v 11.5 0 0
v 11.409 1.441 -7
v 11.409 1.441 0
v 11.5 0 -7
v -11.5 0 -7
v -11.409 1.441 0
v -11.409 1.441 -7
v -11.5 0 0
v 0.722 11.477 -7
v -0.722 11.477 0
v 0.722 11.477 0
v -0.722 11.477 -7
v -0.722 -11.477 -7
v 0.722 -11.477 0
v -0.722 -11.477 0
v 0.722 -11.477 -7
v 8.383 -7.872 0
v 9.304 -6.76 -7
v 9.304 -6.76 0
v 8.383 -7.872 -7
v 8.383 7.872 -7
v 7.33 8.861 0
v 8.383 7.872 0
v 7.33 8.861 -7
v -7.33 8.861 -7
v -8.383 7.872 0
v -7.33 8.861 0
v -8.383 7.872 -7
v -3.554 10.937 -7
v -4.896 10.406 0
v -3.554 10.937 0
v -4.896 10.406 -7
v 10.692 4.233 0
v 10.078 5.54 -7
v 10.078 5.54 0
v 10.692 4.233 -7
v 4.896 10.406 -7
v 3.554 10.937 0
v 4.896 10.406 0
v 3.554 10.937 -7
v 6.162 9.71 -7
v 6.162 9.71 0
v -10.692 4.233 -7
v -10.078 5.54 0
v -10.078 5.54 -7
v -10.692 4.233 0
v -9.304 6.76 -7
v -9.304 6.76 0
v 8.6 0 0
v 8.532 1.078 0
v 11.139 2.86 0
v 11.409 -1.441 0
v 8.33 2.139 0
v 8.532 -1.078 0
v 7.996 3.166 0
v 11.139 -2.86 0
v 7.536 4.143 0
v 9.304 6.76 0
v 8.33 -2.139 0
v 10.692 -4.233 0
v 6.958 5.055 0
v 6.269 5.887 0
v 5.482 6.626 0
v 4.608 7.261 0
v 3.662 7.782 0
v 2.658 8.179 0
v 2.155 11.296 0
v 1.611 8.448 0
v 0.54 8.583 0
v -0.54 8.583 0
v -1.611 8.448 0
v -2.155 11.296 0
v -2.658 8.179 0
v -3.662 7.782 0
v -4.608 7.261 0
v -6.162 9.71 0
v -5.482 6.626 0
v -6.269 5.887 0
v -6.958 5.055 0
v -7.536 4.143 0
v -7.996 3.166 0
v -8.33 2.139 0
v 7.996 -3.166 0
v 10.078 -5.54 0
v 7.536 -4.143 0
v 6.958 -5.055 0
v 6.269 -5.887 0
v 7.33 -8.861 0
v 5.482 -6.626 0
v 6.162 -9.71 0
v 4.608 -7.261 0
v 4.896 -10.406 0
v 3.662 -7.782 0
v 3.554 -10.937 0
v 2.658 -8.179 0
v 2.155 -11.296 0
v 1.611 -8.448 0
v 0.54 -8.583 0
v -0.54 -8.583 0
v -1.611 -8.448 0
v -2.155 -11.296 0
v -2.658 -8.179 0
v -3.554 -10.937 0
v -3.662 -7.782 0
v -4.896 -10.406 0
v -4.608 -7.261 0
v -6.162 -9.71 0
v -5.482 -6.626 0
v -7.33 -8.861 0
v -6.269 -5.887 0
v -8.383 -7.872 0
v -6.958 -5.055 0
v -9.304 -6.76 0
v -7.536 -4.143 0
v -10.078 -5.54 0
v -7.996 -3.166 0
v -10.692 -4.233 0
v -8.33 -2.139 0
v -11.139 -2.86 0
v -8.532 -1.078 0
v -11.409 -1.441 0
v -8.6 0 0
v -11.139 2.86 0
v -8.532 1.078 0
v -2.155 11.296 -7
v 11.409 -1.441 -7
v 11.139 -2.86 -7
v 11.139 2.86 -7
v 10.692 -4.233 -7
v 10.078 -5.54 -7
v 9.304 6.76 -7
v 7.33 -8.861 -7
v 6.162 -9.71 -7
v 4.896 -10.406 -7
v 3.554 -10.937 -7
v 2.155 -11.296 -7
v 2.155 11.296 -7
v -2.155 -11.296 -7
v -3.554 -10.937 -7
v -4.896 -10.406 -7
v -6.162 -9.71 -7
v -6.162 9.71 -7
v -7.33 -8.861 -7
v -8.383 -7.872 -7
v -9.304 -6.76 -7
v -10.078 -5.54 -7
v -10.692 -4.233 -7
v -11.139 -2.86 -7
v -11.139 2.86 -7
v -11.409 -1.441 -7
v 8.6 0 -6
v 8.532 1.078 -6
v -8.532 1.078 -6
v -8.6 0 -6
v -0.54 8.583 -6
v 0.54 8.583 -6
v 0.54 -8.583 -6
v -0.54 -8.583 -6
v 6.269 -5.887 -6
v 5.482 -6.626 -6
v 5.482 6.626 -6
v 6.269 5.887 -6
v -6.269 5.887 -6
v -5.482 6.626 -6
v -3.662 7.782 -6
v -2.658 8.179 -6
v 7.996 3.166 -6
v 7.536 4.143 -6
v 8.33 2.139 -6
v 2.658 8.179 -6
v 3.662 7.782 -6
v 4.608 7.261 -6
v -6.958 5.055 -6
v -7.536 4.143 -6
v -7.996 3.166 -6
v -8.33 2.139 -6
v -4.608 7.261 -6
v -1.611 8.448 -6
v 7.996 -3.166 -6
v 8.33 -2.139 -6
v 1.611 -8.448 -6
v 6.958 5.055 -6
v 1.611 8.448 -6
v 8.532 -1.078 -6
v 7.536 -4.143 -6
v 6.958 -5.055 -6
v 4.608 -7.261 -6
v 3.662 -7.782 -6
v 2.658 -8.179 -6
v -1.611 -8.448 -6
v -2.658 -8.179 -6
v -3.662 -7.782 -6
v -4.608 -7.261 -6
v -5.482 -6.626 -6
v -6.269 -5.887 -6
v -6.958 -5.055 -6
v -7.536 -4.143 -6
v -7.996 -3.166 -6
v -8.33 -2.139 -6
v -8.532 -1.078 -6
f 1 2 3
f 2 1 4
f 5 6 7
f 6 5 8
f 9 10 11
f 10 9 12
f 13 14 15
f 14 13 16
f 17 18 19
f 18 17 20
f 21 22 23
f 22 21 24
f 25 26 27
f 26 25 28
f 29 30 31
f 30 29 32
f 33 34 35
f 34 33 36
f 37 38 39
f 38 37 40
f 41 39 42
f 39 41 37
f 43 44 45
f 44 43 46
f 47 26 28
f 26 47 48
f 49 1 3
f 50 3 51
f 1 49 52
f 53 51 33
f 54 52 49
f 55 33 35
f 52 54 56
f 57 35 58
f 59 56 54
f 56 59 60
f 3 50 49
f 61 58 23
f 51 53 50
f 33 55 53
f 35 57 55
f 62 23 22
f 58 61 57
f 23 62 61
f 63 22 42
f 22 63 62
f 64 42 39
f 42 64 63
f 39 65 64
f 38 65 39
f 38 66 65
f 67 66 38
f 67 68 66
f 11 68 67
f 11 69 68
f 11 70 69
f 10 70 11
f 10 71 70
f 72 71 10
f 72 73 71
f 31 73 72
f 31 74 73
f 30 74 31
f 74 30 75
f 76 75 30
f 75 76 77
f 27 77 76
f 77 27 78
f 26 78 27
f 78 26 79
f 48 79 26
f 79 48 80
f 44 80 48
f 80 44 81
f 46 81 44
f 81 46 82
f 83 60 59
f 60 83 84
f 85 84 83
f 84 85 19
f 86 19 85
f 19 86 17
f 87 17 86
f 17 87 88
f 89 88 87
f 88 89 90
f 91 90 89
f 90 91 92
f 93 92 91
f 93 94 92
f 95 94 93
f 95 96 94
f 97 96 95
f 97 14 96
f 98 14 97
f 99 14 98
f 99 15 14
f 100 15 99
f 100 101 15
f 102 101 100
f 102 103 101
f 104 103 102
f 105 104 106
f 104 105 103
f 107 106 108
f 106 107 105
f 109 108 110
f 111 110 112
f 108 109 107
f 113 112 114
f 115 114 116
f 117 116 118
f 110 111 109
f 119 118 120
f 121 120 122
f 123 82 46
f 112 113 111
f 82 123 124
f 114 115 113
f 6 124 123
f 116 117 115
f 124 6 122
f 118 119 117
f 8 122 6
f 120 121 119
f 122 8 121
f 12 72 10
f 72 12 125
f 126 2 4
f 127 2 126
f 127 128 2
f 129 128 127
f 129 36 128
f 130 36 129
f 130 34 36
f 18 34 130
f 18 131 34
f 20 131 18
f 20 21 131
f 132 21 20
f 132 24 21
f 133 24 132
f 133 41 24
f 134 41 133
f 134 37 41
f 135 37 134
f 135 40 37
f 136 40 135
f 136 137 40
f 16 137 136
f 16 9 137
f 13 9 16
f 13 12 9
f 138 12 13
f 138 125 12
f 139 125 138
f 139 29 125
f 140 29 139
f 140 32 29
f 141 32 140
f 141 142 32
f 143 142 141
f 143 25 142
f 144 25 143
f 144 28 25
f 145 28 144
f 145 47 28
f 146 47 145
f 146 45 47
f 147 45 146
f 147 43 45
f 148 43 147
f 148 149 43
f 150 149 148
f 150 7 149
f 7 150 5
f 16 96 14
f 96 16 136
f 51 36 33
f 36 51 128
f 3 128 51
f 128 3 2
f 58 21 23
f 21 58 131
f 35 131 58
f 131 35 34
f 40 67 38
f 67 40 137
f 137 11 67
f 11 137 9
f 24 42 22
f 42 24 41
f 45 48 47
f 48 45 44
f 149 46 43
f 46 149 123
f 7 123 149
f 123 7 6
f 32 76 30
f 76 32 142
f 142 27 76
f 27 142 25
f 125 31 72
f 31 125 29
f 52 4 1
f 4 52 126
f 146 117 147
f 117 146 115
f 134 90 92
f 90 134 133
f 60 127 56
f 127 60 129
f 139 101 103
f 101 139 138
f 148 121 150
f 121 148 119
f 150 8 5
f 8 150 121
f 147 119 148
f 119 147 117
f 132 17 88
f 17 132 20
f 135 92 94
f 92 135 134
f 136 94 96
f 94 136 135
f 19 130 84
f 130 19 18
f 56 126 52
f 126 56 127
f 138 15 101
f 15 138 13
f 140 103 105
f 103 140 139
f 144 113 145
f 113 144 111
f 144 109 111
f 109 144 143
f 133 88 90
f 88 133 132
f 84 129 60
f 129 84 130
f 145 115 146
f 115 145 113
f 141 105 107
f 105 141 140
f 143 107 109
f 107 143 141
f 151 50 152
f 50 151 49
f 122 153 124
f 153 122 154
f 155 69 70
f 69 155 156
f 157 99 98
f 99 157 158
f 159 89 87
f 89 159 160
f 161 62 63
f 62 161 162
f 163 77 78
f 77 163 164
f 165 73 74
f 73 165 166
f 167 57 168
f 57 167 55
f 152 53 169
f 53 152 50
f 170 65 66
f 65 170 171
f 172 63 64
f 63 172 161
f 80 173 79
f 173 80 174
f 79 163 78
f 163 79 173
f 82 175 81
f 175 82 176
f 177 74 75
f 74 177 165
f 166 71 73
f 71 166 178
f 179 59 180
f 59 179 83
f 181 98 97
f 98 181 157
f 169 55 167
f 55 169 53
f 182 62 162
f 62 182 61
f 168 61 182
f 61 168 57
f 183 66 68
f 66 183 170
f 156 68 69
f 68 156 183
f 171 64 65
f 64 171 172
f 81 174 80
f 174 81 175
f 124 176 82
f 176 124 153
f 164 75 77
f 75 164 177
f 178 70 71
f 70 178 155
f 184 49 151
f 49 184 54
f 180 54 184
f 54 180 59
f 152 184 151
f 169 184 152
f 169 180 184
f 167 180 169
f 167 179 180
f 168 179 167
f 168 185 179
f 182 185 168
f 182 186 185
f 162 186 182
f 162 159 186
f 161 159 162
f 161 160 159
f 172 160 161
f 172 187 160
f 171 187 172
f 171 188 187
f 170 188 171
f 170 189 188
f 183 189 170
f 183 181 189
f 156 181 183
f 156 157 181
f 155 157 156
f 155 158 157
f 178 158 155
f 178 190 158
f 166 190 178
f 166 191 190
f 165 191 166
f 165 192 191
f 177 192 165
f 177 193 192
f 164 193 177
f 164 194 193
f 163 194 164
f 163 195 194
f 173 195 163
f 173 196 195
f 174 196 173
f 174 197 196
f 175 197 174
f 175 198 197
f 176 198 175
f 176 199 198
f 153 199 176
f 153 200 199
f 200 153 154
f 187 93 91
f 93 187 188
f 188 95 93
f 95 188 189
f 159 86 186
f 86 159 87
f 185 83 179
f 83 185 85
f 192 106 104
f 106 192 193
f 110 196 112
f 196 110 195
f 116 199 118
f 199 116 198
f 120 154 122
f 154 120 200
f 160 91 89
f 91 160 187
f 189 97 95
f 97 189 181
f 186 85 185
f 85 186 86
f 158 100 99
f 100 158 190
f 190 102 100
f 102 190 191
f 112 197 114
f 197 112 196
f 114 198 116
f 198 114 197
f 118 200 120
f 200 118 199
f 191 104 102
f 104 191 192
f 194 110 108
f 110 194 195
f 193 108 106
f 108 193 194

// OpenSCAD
$fn = 50;


difference() {
	union() {
		translate(v = [0, 0, -7.0000000000]) {
			cylinder(h = 7, r = 11.5000000000);
		}
	}
	union() {
		#translate(v = [0, 0, -6.0000000000]) {
			cylinder(h = 6, r = 8.6000000000);
		}
	}
}
